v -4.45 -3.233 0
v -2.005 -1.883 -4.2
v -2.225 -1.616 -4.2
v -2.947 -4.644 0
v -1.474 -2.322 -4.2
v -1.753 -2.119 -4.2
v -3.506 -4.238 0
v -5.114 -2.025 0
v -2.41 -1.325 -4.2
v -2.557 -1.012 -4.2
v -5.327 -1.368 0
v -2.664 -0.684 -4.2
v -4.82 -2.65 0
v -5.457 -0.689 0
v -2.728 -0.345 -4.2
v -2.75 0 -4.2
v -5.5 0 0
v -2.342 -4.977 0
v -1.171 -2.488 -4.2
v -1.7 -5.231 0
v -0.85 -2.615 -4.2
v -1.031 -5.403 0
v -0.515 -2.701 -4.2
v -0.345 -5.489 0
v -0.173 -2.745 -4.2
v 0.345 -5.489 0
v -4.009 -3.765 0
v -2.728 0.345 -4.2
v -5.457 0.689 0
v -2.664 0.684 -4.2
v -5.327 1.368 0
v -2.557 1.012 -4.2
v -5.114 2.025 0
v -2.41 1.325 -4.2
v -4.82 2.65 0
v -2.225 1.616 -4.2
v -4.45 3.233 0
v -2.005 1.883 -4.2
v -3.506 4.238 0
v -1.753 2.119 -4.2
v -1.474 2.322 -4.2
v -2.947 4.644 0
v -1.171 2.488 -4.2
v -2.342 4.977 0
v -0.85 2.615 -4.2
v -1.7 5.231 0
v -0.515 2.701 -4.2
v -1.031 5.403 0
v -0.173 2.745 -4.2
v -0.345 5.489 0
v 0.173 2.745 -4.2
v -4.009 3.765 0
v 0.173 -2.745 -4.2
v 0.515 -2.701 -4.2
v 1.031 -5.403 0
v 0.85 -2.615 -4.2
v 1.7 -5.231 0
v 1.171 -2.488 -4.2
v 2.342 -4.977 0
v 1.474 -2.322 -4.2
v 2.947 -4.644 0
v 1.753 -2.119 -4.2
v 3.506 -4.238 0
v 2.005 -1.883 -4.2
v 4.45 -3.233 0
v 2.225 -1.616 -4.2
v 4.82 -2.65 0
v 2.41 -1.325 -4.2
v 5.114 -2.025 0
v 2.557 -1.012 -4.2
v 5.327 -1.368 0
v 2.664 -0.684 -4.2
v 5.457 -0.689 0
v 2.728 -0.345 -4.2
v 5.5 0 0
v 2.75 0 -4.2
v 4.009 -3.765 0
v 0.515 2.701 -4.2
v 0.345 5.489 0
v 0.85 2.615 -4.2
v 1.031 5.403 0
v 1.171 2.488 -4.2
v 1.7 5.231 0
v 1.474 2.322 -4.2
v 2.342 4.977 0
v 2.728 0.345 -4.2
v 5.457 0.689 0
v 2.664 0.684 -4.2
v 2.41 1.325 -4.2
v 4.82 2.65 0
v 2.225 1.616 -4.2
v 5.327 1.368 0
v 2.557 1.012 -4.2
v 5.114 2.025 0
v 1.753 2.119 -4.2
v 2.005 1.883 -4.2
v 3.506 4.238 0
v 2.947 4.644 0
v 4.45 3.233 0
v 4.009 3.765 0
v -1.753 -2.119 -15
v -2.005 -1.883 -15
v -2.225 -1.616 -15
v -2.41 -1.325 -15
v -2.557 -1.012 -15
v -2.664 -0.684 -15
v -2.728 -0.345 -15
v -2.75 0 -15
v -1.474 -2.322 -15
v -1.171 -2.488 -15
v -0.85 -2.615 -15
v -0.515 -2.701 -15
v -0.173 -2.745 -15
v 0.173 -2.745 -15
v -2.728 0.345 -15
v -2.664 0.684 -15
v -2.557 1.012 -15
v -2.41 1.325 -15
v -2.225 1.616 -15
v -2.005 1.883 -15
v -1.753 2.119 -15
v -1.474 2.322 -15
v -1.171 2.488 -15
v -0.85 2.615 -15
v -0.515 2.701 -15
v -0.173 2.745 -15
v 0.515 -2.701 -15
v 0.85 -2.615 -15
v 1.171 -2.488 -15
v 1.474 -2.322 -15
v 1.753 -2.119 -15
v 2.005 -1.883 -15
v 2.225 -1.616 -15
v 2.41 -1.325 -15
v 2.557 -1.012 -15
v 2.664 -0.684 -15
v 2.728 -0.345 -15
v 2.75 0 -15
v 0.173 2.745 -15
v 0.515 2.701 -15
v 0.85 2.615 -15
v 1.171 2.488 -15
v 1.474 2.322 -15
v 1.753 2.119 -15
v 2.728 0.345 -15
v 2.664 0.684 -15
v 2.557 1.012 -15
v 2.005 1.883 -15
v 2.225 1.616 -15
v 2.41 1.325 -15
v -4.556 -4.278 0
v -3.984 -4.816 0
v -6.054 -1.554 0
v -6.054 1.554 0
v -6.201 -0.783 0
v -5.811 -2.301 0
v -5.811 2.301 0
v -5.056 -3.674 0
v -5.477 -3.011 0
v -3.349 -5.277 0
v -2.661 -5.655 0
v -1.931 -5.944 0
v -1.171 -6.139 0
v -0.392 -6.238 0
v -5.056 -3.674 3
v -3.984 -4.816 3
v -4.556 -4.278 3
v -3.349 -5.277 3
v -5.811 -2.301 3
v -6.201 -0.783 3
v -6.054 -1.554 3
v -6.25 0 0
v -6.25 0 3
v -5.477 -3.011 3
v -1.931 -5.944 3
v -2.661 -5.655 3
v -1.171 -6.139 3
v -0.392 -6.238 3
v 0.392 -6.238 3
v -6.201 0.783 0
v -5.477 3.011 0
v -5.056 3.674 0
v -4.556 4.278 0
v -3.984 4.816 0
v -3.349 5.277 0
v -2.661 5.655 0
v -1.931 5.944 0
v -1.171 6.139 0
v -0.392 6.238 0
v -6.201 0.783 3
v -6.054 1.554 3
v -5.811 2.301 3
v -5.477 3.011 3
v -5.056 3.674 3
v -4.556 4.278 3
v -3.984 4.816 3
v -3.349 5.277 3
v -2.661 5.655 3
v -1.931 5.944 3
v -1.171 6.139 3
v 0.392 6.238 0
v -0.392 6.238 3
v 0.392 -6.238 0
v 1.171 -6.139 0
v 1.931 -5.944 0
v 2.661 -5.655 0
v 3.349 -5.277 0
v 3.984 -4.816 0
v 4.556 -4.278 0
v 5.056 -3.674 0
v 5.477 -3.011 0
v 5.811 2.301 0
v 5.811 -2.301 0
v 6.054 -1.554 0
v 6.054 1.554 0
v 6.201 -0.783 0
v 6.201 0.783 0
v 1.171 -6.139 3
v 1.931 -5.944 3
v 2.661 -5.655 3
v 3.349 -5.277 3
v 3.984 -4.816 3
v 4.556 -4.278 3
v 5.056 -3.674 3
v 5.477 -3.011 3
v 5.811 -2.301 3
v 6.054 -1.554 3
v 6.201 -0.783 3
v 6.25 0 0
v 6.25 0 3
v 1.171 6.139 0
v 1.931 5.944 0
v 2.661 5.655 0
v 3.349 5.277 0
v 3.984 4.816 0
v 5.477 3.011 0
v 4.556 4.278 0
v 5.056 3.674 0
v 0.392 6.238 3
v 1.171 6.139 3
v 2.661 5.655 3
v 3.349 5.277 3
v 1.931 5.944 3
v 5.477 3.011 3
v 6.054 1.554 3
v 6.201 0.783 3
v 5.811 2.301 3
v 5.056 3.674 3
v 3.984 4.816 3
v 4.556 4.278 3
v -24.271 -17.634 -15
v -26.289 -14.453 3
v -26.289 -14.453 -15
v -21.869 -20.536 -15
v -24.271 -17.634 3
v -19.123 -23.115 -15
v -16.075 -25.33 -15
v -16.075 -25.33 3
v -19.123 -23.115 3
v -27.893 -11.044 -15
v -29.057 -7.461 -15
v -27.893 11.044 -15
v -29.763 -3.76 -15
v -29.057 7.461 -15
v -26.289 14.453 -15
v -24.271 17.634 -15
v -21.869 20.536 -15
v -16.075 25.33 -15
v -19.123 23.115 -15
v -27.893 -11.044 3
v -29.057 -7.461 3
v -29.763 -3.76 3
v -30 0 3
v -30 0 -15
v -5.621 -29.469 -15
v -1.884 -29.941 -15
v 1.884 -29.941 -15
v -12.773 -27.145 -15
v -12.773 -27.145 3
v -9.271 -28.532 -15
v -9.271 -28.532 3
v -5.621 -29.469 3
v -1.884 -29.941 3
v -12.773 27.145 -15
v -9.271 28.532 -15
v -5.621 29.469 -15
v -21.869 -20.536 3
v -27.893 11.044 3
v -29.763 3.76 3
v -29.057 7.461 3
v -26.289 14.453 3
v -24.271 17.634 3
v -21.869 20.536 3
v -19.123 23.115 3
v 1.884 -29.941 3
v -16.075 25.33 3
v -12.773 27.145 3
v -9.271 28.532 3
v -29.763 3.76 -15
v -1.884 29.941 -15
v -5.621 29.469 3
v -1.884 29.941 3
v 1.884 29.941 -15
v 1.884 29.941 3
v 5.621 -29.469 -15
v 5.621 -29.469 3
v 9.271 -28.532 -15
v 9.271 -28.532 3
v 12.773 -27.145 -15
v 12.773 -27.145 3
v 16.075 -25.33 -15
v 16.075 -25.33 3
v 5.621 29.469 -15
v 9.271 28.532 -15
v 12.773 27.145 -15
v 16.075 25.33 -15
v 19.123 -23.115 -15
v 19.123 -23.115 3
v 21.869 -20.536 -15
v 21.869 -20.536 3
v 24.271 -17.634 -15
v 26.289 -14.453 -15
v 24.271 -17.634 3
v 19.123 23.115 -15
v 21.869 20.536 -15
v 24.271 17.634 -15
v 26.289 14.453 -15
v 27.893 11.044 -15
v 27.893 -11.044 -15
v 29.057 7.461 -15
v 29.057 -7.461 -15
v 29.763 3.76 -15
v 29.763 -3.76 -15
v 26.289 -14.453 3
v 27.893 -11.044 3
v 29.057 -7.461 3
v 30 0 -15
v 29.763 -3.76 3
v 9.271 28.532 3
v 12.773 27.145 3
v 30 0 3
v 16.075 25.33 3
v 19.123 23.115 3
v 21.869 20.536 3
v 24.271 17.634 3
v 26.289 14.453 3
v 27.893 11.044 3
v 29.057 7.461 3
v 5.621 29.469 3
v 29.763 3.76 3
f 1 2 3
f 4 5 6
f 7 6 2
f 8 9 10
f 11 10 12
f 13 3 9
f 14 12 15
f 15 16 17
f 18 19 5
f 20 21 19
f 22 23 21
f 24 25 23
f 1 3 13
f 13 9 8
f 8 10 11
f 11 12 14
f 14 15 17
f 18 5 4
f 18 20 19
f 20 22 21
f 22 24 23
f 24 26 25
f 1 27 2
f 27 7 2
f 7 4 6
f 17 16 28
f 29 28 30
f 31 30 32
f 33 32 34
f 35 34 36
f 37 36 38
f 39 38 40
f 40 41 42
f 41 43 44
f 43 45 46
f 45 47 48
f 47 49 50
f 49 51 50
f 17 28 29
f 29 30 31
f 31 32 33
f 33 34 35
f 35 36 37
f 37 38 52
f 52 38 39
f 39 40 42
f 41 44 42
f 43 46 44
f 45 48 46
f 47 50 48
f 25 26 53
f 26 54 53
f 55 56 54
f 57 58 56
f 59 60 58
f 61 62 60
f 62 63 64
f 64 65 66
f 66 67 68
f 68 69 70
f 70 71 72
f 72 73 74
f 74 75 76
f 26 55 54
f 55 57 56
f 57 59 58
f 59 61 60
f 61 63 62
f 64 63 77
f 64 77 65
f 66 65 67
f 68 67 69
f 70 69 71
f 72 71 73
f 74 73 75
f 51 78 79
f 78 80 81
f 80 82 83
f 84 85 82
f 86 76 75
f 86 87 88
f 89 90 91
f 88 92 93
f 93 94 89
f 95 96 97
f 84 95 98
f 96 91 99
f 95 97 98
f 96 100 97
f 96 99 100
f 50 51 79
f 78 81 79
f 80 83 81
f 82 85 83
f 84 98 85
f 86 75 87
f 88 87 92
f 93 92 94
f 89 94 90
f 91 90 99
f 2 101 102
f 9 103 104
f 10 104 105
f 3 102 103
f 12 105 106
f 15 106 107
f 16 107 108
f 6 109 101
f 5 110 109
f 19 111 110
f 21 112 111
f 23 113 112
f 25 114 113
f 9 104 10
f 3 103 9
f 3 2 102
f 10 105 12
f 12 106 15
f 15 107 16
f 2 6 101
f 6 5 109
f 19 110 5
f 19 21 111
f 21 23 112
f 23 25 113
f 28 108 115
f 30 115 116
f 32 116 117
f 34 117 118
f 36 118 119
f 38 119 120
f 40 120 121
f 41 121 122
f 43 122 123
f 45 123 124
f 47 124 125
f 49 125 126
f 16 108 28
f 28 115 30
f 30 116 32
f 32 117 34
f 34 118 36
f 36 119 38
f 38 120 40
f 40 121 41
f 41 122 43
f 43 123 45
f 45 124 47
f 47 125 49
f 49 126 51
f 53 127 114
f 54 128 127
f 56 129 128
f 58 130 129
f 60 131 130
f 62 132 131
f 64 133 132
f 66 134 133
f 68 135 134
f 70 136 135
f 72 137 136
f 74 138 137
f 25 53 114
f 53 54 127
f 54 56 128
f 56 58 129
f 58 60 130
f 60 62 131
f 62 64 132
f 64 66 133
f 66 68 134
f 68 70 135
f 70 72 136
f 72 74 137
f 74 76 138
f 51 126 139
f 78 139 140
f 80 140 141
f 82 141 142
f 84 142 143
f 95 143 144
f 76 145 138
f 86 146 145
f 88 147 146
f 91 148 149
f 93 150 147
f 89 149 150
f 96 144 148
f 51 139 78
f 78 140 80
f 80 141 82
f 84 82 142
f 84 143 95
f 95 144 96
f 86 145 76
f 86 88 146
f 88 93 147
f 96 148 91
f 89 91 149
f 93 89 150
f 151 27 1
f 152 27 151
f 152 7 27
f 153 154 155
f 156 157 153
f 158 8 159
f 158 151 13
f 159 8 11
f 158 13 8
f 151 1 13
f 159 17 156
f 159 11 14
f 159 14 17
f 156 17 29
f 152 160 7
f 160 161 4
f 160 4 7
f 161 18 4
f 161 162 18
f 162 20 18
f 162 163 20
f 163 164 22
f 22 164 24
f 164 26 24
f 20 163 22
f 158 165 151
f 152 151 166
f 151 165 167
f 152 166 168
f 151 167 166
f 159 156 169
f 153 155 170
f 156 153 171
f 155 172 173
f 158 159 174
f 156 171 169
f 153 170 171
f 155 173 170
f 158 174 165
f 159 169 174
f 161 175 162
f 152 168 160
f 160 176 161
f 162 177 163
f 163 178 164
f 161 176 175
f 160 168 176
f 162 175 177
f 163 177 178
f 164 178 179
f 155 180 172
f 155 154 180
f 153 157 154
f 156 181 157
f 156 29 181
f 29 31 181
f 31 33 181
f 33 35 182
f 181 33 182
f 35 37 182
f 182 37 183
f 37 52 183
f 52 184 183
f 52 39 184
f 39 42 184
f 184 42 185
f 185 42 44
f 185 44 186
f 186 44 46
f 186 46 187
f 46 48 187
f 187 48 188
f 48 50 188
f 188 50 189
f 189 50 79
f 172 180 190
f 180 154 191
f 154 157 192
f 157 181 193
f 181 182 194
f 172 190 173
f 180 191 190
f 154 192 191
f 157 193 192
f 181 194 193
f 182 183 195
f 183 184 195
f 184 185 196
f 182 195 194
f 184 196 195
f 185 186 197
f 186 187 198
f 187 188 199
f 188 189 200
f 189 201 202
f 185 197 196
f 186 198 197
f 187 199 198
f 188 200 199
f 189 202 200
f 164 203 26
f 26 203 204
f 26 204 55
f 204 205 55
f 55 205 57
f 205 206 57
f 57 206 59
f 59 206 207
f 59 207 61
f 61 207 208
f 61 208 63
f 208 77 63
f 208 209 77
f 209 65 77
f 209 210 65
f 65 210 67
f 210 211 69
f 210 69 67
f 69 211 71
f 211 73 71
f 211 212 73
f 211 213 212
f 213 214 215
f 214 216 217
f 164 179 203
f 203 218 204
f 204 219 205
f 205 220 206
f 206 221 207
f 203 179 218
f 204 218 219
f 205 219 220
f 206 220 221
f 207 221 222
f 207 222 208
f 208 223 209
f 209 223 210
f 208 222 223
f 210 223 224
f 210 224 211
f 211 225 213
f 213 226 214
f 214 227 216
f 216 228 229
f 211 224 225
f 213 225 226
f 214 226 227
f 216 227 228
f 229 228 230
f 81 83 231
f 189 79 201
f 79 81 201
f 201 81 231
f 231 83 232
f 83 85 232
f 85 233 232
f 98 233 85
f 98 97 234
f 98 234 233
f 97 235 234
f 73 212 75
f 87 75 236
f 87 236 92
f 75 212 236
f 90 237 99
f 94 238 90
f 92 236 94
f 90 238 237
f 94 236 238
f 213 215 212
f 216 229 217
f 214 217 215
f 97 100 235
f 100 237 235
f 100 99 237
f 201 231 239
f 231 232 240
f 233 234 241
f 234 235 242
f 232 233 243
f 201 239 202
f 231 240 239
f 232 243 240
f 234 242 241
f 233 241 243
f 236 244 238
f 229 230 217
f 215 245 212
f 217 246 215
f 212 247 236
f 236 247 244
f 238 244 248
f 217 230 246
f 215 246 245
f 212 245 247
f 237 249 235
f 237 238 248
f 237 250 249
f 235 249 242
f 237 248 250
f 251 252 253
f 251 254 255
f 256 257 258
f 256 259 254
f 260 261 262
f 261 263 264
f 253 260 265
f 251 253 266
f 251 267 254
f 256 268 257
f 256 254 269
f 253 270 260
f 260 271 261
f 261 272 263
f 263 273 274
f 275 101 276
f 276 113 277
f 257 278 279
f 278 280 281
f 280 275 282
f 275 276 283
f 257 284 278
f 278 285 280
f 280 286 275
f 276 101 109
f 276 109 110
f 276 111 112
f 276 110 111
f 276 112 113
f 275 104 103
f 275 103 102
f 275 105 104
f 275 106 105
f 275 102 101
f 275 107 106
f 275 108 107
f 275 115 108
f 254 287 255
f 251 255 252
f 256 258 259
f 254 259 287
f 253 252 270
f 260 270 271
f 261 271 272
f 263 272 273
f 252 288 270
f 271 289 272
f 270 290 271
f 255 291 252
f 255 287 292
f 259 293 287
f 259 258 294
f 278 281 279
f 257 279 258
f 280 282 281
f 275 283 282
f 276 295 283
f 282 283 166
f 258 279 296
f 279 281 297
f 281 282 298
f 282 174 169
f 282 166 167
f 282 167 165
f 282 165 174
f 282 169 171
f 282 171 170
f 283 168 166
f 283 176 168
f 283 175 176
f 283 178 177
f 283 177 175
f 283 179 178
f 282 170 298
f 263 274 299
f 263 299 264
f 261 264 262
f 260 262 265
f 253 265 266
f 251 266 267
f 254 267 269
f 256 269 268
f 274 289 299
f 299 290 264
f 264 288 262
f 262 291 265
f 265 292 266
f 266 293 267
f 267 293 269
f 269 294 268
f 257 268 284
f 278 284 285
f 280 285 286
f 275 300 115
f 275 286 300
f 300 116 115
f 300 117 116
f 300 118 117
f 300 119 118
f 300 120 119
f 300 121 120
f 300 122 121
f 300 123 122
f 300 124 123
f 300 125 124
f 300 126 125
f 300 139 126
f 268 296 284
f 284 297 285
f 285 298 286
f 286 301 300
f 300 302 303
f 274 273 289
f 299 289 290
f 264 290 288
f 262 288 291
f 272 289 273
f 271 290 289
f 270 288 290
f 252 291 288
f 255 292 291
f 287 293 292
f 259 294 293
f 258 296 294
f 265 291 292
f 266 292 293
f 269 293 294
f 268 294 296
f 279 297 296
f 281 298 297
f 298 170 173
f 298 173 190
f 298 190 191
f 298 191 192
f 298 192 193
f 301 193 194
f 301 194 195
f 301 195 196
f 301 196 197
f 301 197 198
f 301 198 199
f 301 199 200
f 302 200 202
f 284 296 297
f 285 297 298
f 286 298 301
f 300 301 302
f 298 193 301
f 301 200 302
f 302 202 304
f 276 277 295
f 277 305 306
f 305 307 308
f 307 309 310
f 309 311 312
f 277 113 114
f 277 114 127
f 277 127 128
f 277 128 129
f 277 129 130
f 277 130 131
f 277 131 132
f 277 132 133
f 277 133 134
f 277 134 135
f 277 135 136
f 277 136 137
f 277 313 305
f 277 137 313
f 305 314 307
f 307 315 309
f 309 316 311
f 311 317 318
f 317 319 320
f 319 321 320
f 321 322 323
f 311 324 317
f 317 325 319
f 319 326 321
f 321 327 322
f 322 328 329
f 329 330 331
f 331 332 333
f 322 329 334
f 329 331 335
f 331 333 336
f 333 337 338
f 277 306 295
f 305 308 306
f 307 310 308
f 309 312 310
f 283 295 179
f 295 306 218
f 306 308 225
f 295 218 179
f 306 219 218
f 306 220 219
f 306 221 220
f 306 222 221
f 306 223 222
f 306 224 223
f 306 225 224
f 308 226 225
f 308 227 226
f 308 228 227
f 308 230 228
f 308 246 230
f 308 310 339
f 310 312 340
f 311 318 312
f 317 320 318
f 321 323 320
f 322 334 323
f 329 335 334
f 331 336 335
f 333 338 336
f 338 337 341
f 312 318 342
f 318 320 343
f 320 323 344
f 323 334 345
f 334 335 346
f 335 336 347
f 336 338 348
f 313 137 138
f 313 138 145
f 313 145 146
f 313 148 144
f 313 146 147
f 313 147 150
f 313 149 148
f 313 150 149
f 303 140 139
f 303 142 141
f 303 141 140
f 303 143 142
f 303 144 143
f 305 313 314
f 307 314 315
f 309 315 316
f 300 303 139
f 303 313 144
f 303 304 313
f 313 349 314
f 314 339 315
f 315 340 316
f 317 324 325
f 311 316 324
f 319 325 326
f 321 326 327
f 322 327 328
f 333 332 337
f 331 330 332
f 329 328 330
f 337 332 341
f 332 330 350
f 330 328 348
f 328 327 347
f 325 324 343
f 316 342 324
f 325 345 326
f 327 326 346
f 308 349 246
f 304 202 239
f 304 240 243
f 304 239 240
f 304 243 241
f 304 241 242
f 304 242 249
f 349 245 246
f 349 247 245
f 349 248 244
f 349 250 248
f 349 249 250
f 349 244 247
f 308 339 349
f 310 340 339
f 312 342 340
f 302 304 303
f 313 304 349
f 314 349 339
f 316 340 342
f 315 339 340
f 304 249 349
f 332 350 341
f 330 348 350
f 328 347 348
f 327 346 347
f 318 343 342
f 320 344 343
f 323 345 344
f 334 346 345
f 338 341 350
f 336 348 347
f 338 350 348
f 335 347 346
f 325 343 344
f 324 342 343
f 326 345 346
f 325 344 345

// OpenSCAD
$fn = 50;


difference() {
	union() {
		translate(v = [0, 0, -15.0000000000]) {
			cylinder(h = 18, r = 30.0000000000);
		}
	}
	union() {
		translate(v = [0, 0, 0]) {
			rotate(a = [0, 0, 0]) {
				difference() {
					union() {
						translate(v = [0, 0, -18.0000000000]) {
							cylinder(h = 18, r = 2.2500000000);
						}
						translate(v = [0, 0, -4.2000000000]) {
							cylinder(h = 4.2000000000, r1 = 2.7500000000, r2 = 5.5000000000);
						}
						translate(v = [0, 0, -18.0000000000]) {
							cylinder(h = 18, r = 2.7500000000);
						}
						translate(v = [0, 0, -18.0000000000]) {
							cylinder(h = 18, r = 2.2500000000);
						}
					}
					union();
				}
			}
		}
		#cylinder(h = 3, r = 6.2500000000);
	}
}
